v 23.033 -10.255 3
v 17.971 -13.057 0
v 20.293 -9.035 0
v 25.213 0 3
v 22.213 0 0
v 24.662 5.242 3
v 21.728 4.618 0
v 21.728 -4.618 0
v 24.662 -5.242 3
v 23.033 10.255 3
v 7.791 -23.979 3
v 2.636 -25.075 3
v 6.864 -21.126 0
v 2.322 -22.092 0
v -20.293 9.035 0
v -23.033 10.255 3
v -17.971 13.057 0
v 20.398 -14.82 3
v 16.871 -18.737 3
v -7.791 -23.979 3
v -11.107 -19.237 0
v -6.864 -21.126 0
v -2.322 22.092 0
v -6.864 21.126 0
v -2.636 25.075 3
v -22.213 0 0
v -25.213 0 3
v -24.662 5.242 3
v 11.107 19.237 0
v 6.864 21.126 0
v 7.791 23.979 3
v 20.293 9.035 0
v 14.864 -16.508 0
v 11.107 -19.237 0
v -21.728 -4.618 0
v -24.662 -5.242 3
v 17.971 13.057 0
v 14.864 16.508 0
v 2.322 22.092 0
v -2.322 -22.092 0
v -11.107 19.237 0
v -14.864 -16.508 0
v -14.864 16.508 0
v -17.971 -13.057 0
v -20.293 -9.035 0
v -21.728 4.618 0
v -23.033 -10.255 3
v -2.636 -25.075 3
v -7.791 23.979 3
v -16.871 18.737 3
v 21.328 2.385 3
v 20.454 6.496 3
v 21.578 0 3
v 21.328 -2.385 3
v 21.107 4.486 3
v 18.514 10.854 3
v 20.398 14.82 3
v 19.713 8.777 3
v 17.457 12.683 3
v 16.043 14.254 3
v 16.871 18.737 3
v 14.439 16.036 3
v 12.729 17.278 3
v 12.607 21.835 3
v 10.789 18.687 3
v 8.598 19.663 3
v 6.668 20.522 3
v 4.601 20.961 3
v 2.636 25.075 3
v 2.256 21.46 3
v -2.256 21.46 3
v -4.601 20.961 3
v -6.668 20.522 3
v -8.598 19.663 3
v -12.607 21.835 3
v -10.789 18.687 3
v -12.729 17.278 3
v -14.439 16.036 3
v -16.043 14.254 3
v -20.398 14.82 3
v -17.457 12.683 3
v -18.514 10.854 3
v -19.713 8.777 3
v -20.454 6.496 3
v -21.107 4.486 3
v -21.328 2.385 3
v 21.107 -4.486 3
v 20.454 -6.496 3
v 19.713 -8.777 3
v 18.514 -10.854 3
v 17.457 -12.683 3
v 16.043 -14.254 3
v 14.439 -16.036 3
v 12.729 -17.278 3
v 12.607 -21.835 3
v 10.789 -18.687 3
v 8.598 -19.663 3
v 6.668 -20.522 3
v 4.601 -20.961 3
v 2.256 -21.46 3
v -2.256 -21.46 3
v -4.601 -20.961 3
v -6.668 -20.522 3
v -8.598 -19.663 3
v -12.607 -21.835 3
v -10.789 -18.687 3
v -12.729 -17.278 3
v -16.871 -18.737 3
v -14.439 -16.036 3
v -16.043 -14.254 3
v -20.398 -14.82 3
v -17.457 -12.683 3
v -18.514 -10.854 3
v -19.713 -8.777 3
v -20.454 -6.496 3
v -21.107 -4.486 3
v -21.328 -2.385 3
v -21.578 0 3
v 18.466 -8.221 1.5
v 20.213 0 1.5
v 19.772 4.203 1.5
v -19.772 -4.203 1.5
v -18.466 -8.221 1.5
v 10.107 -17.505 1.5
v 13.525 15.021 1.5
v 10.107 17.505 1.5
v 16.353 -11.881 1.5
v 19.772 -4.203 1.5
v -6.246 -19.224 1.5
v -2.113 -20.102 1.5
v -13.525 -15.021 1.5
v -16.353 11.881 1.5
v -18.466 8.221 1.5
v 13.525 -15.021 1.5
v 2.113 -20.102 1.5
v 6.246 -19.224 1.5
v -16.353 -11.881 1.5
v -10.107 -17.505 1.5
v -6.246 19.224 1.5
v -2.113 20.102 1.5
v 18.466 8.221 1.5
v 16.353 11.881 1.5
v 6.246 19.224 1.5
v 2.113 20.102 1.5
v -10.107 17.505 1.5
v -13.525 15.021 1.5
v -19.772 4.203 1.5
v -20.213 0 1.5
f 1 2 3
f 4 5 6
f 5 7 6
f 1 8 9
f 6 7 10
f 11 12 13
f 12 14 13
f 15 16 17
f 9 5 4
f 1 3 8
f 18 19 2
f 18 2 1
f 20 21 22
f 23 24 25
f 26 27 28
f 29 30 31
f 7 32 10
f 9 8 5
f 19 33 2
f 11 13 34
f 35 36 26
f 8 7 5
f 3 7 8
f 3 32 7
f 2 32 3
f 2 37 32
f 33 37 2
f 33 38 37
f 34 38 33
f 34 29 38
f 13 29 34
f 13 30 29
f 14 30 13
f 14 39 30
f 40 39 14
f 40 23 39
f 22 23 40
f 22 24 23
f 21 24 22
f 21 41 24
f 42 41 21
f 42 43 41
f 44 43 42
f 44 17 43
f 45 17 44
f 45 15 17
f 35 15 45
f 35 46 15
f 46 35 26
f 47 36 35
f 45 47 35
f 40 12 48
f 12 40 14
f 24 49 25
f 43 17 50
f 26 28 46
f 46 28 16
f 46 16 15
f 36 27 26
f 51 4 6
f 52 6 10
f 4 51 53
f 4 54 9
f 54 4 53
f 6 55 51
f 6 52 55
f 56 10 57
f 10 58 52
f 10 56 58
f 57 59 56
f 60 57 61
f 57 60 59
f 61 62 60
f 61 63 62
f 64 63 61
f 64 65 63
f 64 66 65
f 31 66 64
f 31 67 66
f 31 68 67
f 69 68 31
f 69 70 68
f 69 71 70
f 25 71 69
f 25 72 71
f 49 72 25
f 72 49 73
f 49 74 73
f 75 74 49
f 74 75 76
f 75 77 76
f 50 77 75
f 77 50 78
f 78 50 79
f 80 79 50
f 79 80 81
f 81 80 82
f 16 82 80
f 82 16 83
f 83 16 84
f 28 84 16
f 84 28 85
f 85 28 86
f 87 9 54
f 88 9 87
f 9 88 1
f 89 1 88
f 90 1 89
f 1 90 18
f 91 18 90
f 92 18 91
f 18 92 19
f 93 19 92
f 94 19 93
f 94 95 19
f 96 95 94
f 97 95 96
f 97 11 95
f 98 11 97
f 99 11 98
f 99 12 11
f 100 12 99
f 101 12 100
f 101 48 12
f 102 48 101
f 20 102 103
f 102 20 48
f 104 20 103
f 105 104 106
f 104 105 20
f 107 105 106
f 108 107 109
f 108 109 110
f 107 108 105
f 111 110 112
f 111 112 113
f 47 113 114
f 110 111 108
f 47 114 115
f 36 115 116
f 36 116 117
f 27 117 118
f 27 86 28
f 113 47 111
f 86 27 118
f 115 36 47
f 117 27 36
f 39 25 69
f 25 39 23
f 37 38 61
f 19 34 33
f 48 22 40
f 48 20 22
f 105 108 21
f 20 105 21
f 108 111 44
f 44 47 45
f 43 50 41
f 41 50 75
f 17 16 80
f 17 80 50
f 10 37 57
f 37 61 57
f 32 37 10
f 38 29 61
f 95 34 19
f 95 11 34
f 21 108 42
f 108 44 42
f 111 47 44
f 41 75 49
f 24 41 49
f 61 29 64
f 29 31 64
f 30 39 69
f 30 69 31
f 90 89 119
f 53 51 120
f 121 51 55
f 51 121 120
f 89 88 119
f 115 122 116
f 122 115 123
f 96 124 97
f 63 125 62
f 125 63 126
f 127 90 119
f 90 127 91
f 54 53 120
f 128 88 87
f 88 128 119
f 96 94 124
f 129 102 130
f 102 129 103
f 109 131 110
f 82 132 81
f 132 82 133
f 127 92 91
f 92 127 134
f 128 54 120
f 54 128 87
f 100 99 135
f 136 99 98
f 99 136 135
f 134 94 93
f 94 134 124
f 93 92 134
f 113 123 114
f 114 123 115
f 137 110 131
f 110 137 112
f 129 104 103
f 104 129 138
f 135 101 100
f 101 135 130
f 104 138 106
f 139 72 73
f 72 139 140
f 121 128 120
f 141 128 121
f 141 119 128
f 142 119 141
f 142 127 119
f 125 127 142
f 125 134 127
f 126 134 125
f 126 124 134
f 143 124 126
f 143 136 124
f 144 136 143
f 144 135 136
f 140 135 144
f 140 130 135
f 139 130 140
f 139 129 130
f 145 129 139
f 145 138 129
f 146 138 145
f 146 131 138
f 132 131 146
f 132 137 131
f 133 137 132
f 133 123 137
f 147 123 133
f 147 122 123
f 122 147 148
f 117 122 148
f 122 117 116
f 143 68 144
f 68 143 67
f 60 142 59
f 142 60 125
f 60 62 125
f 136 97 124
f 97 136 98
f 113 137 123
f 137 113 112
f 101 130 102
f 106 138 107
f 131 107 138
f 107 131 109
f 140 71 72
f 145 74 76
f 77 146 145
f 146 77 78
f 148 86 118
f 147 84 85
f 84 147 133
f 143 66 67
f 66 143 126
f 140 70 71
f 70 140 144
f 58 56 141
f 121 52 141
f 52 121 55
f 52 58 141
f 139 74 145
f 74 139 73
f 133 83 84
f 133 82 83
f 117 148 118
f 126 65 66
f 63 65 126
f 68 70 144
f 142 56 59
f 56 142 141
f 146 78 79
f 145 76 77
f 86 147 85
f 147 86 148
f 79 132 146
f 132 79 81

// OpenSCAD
botrad=15*sqrt(2) + 1;
difference() 
{
cylinder(3,botrad,botrad+3);
translate([0,0,1.5])cylinder(3, botrad-2,(botrad+3) * (botrad-2) / botrad);
}
